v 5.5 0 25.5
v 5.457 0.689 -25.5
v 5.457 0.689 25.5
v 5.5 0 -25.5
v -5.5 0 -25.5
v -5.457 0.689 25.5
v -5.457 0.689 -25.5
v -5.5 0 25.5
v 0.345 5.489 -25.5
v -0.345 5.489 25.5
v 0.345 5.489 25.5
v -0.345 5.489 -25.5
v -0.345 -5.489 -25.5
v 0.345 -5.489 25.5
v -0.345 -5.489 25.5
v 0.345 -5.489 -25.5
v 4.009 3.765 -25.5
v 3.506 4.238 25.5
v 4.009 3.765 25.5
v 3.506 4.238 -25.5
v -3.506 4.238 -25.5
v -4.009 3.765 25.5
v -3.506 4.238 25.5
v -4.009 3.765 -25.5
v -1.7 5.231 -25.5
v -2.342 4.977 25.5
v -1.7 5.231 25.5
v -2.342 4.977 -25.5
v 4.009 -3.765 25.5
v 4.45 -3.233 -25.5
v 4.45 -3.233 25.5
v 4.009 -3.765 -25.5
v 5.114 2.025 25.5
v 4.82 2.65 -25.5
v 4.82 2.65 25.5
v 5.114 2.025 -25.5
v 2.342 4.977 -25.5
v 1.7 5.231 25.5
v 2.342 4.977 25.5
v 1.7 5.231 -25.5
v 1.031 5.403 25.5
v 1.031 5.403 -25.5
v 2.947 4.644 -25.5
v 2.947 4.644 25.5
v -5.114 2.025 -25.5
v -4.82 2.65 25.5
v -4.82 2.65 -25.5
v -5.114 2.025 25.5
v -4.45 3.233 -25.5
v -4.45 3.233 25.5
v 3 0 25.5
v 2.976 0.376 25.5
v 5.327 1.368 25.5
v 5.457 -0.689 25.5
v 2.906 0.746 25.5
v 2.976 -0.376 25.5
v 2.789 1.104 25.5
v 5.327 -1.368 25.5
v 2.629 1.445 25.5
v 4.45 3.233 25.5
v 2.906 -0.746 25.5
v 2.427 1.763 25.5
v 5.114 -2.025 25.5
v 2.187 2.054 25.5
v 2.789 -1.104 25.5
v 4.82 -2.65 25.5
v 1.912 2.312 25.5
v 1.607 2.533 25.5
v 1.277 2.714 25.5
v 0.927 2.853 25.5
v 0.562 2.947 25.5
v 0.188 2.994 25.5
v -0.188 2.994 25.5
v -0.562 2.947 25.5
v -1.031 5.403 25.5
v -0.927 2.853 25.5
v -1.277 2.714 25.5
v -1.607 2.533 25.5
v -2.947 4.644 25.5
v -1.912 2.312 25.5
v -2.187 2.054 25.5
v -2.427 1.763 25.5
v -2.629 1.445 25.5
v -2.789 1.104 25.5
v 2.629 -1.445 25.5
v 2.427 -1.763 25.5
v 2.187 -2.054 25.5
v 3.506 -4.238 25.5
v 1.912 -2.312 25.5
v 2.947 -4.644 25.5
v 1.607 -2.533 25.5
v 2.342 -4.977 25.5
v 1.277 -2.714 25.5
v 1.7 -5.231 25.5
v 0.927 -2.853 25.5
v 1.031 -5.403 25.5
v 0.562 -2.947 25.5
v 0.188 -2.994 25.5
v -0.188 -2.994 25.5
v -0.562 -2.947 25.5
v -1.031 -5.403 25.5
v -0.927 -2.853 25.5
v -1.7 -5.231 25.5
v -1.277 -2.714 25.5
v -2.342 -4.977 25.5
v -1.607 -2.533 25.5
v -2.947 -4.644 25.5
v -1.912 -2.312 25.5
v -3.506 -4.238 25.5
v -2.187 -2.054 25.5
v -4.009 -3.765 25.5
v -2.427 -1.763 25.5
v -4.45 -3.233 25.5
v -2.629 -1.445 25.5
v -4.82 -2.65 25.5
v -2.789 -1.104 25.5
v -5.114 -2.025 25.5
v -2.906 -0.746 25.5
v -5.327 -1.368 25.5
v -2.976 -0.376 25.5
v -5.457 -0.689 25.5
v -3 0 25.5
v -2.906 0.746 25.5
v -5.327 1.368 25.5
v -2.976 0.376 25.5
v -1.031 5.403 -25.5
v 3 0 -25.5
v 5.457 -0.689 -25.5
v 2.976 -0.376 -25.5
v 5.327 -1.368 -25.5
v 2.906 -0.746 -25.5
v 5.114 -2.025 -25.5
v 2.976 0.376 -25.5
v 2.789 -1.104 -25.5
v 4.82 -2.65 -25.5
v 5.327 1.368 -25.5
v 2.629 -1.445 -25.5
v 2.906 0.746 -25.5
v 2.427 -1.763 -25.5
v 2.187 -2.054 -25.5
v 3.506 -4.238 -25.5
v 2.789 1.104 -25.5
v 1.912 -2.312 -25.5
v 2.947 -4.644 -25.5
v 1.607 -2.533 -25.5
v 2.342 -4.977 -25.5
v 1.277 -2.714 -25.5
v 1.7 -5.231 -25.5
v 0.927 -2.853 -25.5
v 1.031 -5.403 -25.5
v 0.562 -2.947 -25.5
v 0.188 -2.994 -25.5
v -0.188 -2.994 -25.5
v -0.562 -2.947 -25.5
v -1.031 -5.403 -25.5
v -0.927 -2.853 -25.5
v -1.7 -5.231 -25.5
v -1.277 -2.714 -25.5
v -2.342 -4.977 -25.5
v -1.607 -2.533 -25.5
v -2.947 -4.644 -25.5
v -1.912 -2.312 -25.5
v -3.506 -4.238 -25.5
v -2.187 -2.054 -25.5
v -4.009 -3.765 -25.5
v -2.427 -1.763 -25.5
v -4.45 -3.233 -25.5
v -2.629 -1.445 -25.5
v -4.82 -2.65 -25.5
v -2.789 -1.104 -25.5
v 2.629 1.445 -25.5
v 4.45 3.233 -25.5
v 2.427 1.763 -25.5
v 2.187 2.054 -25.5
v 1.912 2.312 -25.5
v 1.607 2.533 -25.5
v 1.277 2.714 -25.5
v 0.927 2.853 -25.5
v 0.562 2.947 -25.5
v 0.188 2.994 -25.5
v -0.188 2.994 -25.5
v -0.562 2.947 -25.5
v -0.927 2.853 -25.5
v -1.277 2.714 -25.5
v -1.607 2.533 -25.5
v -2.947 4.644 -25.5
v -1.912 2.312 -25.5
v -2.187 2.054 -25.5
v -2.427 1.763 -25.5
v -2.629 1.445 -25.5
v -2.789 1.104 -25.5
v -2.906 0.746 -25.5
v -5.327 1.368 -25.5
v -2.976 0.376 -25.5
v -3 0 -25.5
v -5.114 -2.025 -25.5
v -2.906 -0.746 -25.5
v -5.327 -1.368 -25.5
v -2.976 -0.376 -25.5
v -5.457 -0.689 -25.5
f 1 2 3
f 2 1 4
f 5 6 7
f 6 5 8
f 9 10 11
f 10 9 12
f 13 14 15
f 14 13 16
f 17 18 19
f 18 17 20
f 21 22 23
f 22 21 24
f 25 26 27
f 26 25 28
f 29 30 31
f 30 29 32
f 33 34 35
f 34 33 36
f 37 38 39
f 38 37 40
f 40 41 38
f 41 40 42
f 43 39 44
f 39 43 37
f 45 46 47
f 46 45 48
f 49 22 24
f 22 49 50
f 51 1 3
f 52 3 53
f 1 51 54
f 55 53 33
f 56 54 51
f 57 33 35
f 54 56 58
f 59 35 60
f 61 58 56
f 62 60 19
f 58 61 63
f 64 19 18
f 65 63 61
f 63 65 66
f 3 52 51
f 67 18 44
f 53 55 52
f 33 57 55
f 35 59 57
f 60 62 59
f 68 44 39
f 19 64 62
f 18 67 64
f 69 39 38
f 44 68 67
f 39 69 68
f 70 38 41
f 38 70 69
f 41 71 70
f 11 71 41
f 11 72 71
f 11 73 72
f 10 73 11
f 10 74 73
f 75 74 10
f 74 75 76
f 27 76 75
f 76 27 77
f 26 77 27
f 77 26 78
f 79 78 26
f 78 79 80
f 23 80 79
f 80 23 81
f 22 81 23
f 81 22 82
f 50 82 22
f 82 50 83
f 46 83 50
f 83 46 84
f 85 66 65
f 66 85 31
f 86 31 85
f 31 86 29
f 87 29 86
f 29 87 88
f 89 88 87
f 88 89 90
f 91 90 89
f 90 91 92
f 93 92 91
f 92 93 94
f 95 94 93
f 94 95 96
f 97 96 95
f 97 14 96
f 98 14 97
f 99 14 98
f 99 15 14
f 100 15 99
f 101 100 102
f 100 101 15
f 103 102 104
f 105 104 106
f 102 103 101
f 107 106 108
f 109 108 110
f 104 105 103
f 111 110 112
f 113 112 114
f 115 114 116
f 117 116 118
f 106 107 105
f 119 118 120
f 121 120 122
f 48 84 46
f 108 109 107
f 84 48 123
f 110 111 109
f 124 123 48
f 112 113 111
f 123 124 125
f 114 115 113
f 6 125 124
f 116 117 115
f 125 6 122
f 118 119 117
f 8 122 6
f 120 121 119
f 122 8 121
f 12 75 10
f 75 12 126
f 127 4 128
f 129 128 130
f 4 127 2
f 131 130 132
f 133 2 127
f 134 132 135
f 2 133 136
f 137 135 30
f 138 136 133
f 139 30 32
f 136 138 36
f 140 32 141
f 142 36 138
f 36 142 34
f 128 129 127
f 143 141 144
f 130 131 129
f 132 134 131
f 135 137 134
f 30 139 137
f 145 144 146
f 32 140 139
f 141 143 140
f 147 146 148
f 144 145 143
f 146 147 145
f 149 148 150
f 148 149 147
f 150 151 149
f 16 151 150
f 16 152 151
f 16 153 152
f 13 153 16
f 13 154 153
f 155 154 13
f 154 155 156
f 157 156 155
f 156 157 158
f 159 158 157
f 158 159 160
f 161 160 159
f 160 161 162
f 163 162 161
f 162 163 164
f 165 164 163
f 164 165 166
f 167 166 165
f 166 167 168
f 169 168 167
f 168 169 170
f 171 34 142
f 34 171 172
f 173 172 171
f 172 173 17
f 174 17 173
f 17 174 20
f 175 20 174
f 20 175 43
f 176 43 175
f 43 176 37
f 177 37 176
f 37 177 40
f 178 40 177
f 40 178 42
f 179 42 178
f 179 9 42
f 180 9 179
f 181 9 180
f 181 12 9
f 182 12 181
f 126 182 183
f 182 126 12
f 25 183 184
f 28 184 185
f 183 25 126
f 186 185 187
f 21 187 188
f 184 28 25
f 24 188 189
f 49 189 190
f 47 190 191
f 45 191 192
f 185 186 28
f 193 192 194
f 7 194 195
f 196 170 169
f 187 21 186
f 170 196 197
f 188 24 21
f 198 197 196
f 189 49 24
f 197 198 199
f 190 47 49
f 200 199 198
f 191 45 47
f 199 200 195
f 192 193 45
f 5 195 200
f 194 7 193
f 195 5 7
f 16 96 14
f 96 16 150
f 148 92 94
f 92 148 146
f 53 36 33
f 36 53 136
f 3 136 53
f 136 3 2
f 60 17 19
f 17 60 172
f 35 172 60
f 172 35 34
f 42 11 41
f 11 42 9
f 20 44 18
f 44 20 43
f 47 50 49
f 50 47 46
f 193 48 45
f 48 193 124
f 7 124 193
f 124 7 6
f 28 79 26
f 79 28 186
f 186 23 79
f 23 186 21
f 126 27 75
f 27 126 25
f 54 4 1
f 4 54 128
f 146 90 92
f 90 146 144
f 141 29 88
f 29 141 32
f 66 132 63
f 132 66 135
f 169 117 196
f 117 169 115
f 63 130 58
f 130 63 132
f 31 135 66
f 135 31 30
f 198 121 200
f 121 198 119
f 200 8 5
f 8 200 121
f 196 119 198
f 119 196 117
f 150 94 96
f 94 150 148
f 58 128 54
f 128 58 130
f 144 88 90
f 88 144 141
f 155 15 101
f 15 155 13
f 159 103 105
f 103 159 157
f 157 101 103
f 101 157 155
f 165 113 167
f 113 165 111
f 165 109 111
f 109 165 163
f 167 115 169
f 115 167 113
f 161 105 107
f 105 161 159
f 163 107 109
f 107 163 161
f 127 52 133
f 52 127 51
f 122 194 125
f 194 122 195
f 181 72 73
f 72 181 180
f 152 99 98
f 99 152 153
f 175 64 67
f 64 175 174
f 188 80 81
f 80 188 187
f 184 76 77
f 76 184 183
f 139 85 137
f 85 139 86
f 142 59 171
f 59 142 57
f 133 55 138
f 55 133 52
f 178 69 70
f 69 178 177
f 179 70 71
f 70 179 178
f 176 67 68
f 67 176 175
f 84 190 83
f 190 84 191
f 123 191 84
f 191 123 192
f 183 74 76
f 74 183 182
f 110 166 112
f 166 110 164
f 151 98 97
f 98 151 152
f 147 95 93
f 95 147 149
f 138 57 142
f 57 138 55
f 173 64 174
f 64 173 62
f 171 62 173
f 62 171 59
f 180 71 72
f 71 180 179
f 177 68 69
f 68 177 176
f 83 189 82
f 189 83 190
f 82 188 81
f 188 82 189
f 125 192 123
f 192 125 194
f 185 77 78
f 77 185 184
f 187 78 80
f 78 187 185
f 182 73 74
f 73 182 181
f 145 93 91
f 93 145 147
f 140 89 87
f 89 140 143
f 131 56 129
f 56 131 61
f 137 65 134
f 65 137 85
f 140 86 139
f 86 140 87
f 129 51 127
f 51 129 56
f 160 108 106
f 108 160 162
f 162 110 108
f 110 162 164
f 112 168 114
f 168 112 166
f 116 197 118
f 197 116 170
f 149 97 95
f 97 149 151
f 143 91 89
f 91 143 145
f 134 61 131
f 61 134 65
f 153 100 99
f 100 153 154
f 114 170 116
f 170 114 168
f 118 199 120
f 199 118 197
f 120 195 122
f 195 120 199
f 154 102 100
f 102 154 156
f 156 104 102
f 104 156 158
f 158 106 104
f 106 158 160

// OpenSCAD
$fn = 50;


difference() {
	union() {
		translate(v = [0, 0, -25.5000000000]) {
			cylinder(h = 51, r = 5.5000000000);
		}
	}
	union() {
		translate(v = [0, 0, -100.0000000000]) {
			cylinder(h = 200, r = 3);
		}
	}
}
